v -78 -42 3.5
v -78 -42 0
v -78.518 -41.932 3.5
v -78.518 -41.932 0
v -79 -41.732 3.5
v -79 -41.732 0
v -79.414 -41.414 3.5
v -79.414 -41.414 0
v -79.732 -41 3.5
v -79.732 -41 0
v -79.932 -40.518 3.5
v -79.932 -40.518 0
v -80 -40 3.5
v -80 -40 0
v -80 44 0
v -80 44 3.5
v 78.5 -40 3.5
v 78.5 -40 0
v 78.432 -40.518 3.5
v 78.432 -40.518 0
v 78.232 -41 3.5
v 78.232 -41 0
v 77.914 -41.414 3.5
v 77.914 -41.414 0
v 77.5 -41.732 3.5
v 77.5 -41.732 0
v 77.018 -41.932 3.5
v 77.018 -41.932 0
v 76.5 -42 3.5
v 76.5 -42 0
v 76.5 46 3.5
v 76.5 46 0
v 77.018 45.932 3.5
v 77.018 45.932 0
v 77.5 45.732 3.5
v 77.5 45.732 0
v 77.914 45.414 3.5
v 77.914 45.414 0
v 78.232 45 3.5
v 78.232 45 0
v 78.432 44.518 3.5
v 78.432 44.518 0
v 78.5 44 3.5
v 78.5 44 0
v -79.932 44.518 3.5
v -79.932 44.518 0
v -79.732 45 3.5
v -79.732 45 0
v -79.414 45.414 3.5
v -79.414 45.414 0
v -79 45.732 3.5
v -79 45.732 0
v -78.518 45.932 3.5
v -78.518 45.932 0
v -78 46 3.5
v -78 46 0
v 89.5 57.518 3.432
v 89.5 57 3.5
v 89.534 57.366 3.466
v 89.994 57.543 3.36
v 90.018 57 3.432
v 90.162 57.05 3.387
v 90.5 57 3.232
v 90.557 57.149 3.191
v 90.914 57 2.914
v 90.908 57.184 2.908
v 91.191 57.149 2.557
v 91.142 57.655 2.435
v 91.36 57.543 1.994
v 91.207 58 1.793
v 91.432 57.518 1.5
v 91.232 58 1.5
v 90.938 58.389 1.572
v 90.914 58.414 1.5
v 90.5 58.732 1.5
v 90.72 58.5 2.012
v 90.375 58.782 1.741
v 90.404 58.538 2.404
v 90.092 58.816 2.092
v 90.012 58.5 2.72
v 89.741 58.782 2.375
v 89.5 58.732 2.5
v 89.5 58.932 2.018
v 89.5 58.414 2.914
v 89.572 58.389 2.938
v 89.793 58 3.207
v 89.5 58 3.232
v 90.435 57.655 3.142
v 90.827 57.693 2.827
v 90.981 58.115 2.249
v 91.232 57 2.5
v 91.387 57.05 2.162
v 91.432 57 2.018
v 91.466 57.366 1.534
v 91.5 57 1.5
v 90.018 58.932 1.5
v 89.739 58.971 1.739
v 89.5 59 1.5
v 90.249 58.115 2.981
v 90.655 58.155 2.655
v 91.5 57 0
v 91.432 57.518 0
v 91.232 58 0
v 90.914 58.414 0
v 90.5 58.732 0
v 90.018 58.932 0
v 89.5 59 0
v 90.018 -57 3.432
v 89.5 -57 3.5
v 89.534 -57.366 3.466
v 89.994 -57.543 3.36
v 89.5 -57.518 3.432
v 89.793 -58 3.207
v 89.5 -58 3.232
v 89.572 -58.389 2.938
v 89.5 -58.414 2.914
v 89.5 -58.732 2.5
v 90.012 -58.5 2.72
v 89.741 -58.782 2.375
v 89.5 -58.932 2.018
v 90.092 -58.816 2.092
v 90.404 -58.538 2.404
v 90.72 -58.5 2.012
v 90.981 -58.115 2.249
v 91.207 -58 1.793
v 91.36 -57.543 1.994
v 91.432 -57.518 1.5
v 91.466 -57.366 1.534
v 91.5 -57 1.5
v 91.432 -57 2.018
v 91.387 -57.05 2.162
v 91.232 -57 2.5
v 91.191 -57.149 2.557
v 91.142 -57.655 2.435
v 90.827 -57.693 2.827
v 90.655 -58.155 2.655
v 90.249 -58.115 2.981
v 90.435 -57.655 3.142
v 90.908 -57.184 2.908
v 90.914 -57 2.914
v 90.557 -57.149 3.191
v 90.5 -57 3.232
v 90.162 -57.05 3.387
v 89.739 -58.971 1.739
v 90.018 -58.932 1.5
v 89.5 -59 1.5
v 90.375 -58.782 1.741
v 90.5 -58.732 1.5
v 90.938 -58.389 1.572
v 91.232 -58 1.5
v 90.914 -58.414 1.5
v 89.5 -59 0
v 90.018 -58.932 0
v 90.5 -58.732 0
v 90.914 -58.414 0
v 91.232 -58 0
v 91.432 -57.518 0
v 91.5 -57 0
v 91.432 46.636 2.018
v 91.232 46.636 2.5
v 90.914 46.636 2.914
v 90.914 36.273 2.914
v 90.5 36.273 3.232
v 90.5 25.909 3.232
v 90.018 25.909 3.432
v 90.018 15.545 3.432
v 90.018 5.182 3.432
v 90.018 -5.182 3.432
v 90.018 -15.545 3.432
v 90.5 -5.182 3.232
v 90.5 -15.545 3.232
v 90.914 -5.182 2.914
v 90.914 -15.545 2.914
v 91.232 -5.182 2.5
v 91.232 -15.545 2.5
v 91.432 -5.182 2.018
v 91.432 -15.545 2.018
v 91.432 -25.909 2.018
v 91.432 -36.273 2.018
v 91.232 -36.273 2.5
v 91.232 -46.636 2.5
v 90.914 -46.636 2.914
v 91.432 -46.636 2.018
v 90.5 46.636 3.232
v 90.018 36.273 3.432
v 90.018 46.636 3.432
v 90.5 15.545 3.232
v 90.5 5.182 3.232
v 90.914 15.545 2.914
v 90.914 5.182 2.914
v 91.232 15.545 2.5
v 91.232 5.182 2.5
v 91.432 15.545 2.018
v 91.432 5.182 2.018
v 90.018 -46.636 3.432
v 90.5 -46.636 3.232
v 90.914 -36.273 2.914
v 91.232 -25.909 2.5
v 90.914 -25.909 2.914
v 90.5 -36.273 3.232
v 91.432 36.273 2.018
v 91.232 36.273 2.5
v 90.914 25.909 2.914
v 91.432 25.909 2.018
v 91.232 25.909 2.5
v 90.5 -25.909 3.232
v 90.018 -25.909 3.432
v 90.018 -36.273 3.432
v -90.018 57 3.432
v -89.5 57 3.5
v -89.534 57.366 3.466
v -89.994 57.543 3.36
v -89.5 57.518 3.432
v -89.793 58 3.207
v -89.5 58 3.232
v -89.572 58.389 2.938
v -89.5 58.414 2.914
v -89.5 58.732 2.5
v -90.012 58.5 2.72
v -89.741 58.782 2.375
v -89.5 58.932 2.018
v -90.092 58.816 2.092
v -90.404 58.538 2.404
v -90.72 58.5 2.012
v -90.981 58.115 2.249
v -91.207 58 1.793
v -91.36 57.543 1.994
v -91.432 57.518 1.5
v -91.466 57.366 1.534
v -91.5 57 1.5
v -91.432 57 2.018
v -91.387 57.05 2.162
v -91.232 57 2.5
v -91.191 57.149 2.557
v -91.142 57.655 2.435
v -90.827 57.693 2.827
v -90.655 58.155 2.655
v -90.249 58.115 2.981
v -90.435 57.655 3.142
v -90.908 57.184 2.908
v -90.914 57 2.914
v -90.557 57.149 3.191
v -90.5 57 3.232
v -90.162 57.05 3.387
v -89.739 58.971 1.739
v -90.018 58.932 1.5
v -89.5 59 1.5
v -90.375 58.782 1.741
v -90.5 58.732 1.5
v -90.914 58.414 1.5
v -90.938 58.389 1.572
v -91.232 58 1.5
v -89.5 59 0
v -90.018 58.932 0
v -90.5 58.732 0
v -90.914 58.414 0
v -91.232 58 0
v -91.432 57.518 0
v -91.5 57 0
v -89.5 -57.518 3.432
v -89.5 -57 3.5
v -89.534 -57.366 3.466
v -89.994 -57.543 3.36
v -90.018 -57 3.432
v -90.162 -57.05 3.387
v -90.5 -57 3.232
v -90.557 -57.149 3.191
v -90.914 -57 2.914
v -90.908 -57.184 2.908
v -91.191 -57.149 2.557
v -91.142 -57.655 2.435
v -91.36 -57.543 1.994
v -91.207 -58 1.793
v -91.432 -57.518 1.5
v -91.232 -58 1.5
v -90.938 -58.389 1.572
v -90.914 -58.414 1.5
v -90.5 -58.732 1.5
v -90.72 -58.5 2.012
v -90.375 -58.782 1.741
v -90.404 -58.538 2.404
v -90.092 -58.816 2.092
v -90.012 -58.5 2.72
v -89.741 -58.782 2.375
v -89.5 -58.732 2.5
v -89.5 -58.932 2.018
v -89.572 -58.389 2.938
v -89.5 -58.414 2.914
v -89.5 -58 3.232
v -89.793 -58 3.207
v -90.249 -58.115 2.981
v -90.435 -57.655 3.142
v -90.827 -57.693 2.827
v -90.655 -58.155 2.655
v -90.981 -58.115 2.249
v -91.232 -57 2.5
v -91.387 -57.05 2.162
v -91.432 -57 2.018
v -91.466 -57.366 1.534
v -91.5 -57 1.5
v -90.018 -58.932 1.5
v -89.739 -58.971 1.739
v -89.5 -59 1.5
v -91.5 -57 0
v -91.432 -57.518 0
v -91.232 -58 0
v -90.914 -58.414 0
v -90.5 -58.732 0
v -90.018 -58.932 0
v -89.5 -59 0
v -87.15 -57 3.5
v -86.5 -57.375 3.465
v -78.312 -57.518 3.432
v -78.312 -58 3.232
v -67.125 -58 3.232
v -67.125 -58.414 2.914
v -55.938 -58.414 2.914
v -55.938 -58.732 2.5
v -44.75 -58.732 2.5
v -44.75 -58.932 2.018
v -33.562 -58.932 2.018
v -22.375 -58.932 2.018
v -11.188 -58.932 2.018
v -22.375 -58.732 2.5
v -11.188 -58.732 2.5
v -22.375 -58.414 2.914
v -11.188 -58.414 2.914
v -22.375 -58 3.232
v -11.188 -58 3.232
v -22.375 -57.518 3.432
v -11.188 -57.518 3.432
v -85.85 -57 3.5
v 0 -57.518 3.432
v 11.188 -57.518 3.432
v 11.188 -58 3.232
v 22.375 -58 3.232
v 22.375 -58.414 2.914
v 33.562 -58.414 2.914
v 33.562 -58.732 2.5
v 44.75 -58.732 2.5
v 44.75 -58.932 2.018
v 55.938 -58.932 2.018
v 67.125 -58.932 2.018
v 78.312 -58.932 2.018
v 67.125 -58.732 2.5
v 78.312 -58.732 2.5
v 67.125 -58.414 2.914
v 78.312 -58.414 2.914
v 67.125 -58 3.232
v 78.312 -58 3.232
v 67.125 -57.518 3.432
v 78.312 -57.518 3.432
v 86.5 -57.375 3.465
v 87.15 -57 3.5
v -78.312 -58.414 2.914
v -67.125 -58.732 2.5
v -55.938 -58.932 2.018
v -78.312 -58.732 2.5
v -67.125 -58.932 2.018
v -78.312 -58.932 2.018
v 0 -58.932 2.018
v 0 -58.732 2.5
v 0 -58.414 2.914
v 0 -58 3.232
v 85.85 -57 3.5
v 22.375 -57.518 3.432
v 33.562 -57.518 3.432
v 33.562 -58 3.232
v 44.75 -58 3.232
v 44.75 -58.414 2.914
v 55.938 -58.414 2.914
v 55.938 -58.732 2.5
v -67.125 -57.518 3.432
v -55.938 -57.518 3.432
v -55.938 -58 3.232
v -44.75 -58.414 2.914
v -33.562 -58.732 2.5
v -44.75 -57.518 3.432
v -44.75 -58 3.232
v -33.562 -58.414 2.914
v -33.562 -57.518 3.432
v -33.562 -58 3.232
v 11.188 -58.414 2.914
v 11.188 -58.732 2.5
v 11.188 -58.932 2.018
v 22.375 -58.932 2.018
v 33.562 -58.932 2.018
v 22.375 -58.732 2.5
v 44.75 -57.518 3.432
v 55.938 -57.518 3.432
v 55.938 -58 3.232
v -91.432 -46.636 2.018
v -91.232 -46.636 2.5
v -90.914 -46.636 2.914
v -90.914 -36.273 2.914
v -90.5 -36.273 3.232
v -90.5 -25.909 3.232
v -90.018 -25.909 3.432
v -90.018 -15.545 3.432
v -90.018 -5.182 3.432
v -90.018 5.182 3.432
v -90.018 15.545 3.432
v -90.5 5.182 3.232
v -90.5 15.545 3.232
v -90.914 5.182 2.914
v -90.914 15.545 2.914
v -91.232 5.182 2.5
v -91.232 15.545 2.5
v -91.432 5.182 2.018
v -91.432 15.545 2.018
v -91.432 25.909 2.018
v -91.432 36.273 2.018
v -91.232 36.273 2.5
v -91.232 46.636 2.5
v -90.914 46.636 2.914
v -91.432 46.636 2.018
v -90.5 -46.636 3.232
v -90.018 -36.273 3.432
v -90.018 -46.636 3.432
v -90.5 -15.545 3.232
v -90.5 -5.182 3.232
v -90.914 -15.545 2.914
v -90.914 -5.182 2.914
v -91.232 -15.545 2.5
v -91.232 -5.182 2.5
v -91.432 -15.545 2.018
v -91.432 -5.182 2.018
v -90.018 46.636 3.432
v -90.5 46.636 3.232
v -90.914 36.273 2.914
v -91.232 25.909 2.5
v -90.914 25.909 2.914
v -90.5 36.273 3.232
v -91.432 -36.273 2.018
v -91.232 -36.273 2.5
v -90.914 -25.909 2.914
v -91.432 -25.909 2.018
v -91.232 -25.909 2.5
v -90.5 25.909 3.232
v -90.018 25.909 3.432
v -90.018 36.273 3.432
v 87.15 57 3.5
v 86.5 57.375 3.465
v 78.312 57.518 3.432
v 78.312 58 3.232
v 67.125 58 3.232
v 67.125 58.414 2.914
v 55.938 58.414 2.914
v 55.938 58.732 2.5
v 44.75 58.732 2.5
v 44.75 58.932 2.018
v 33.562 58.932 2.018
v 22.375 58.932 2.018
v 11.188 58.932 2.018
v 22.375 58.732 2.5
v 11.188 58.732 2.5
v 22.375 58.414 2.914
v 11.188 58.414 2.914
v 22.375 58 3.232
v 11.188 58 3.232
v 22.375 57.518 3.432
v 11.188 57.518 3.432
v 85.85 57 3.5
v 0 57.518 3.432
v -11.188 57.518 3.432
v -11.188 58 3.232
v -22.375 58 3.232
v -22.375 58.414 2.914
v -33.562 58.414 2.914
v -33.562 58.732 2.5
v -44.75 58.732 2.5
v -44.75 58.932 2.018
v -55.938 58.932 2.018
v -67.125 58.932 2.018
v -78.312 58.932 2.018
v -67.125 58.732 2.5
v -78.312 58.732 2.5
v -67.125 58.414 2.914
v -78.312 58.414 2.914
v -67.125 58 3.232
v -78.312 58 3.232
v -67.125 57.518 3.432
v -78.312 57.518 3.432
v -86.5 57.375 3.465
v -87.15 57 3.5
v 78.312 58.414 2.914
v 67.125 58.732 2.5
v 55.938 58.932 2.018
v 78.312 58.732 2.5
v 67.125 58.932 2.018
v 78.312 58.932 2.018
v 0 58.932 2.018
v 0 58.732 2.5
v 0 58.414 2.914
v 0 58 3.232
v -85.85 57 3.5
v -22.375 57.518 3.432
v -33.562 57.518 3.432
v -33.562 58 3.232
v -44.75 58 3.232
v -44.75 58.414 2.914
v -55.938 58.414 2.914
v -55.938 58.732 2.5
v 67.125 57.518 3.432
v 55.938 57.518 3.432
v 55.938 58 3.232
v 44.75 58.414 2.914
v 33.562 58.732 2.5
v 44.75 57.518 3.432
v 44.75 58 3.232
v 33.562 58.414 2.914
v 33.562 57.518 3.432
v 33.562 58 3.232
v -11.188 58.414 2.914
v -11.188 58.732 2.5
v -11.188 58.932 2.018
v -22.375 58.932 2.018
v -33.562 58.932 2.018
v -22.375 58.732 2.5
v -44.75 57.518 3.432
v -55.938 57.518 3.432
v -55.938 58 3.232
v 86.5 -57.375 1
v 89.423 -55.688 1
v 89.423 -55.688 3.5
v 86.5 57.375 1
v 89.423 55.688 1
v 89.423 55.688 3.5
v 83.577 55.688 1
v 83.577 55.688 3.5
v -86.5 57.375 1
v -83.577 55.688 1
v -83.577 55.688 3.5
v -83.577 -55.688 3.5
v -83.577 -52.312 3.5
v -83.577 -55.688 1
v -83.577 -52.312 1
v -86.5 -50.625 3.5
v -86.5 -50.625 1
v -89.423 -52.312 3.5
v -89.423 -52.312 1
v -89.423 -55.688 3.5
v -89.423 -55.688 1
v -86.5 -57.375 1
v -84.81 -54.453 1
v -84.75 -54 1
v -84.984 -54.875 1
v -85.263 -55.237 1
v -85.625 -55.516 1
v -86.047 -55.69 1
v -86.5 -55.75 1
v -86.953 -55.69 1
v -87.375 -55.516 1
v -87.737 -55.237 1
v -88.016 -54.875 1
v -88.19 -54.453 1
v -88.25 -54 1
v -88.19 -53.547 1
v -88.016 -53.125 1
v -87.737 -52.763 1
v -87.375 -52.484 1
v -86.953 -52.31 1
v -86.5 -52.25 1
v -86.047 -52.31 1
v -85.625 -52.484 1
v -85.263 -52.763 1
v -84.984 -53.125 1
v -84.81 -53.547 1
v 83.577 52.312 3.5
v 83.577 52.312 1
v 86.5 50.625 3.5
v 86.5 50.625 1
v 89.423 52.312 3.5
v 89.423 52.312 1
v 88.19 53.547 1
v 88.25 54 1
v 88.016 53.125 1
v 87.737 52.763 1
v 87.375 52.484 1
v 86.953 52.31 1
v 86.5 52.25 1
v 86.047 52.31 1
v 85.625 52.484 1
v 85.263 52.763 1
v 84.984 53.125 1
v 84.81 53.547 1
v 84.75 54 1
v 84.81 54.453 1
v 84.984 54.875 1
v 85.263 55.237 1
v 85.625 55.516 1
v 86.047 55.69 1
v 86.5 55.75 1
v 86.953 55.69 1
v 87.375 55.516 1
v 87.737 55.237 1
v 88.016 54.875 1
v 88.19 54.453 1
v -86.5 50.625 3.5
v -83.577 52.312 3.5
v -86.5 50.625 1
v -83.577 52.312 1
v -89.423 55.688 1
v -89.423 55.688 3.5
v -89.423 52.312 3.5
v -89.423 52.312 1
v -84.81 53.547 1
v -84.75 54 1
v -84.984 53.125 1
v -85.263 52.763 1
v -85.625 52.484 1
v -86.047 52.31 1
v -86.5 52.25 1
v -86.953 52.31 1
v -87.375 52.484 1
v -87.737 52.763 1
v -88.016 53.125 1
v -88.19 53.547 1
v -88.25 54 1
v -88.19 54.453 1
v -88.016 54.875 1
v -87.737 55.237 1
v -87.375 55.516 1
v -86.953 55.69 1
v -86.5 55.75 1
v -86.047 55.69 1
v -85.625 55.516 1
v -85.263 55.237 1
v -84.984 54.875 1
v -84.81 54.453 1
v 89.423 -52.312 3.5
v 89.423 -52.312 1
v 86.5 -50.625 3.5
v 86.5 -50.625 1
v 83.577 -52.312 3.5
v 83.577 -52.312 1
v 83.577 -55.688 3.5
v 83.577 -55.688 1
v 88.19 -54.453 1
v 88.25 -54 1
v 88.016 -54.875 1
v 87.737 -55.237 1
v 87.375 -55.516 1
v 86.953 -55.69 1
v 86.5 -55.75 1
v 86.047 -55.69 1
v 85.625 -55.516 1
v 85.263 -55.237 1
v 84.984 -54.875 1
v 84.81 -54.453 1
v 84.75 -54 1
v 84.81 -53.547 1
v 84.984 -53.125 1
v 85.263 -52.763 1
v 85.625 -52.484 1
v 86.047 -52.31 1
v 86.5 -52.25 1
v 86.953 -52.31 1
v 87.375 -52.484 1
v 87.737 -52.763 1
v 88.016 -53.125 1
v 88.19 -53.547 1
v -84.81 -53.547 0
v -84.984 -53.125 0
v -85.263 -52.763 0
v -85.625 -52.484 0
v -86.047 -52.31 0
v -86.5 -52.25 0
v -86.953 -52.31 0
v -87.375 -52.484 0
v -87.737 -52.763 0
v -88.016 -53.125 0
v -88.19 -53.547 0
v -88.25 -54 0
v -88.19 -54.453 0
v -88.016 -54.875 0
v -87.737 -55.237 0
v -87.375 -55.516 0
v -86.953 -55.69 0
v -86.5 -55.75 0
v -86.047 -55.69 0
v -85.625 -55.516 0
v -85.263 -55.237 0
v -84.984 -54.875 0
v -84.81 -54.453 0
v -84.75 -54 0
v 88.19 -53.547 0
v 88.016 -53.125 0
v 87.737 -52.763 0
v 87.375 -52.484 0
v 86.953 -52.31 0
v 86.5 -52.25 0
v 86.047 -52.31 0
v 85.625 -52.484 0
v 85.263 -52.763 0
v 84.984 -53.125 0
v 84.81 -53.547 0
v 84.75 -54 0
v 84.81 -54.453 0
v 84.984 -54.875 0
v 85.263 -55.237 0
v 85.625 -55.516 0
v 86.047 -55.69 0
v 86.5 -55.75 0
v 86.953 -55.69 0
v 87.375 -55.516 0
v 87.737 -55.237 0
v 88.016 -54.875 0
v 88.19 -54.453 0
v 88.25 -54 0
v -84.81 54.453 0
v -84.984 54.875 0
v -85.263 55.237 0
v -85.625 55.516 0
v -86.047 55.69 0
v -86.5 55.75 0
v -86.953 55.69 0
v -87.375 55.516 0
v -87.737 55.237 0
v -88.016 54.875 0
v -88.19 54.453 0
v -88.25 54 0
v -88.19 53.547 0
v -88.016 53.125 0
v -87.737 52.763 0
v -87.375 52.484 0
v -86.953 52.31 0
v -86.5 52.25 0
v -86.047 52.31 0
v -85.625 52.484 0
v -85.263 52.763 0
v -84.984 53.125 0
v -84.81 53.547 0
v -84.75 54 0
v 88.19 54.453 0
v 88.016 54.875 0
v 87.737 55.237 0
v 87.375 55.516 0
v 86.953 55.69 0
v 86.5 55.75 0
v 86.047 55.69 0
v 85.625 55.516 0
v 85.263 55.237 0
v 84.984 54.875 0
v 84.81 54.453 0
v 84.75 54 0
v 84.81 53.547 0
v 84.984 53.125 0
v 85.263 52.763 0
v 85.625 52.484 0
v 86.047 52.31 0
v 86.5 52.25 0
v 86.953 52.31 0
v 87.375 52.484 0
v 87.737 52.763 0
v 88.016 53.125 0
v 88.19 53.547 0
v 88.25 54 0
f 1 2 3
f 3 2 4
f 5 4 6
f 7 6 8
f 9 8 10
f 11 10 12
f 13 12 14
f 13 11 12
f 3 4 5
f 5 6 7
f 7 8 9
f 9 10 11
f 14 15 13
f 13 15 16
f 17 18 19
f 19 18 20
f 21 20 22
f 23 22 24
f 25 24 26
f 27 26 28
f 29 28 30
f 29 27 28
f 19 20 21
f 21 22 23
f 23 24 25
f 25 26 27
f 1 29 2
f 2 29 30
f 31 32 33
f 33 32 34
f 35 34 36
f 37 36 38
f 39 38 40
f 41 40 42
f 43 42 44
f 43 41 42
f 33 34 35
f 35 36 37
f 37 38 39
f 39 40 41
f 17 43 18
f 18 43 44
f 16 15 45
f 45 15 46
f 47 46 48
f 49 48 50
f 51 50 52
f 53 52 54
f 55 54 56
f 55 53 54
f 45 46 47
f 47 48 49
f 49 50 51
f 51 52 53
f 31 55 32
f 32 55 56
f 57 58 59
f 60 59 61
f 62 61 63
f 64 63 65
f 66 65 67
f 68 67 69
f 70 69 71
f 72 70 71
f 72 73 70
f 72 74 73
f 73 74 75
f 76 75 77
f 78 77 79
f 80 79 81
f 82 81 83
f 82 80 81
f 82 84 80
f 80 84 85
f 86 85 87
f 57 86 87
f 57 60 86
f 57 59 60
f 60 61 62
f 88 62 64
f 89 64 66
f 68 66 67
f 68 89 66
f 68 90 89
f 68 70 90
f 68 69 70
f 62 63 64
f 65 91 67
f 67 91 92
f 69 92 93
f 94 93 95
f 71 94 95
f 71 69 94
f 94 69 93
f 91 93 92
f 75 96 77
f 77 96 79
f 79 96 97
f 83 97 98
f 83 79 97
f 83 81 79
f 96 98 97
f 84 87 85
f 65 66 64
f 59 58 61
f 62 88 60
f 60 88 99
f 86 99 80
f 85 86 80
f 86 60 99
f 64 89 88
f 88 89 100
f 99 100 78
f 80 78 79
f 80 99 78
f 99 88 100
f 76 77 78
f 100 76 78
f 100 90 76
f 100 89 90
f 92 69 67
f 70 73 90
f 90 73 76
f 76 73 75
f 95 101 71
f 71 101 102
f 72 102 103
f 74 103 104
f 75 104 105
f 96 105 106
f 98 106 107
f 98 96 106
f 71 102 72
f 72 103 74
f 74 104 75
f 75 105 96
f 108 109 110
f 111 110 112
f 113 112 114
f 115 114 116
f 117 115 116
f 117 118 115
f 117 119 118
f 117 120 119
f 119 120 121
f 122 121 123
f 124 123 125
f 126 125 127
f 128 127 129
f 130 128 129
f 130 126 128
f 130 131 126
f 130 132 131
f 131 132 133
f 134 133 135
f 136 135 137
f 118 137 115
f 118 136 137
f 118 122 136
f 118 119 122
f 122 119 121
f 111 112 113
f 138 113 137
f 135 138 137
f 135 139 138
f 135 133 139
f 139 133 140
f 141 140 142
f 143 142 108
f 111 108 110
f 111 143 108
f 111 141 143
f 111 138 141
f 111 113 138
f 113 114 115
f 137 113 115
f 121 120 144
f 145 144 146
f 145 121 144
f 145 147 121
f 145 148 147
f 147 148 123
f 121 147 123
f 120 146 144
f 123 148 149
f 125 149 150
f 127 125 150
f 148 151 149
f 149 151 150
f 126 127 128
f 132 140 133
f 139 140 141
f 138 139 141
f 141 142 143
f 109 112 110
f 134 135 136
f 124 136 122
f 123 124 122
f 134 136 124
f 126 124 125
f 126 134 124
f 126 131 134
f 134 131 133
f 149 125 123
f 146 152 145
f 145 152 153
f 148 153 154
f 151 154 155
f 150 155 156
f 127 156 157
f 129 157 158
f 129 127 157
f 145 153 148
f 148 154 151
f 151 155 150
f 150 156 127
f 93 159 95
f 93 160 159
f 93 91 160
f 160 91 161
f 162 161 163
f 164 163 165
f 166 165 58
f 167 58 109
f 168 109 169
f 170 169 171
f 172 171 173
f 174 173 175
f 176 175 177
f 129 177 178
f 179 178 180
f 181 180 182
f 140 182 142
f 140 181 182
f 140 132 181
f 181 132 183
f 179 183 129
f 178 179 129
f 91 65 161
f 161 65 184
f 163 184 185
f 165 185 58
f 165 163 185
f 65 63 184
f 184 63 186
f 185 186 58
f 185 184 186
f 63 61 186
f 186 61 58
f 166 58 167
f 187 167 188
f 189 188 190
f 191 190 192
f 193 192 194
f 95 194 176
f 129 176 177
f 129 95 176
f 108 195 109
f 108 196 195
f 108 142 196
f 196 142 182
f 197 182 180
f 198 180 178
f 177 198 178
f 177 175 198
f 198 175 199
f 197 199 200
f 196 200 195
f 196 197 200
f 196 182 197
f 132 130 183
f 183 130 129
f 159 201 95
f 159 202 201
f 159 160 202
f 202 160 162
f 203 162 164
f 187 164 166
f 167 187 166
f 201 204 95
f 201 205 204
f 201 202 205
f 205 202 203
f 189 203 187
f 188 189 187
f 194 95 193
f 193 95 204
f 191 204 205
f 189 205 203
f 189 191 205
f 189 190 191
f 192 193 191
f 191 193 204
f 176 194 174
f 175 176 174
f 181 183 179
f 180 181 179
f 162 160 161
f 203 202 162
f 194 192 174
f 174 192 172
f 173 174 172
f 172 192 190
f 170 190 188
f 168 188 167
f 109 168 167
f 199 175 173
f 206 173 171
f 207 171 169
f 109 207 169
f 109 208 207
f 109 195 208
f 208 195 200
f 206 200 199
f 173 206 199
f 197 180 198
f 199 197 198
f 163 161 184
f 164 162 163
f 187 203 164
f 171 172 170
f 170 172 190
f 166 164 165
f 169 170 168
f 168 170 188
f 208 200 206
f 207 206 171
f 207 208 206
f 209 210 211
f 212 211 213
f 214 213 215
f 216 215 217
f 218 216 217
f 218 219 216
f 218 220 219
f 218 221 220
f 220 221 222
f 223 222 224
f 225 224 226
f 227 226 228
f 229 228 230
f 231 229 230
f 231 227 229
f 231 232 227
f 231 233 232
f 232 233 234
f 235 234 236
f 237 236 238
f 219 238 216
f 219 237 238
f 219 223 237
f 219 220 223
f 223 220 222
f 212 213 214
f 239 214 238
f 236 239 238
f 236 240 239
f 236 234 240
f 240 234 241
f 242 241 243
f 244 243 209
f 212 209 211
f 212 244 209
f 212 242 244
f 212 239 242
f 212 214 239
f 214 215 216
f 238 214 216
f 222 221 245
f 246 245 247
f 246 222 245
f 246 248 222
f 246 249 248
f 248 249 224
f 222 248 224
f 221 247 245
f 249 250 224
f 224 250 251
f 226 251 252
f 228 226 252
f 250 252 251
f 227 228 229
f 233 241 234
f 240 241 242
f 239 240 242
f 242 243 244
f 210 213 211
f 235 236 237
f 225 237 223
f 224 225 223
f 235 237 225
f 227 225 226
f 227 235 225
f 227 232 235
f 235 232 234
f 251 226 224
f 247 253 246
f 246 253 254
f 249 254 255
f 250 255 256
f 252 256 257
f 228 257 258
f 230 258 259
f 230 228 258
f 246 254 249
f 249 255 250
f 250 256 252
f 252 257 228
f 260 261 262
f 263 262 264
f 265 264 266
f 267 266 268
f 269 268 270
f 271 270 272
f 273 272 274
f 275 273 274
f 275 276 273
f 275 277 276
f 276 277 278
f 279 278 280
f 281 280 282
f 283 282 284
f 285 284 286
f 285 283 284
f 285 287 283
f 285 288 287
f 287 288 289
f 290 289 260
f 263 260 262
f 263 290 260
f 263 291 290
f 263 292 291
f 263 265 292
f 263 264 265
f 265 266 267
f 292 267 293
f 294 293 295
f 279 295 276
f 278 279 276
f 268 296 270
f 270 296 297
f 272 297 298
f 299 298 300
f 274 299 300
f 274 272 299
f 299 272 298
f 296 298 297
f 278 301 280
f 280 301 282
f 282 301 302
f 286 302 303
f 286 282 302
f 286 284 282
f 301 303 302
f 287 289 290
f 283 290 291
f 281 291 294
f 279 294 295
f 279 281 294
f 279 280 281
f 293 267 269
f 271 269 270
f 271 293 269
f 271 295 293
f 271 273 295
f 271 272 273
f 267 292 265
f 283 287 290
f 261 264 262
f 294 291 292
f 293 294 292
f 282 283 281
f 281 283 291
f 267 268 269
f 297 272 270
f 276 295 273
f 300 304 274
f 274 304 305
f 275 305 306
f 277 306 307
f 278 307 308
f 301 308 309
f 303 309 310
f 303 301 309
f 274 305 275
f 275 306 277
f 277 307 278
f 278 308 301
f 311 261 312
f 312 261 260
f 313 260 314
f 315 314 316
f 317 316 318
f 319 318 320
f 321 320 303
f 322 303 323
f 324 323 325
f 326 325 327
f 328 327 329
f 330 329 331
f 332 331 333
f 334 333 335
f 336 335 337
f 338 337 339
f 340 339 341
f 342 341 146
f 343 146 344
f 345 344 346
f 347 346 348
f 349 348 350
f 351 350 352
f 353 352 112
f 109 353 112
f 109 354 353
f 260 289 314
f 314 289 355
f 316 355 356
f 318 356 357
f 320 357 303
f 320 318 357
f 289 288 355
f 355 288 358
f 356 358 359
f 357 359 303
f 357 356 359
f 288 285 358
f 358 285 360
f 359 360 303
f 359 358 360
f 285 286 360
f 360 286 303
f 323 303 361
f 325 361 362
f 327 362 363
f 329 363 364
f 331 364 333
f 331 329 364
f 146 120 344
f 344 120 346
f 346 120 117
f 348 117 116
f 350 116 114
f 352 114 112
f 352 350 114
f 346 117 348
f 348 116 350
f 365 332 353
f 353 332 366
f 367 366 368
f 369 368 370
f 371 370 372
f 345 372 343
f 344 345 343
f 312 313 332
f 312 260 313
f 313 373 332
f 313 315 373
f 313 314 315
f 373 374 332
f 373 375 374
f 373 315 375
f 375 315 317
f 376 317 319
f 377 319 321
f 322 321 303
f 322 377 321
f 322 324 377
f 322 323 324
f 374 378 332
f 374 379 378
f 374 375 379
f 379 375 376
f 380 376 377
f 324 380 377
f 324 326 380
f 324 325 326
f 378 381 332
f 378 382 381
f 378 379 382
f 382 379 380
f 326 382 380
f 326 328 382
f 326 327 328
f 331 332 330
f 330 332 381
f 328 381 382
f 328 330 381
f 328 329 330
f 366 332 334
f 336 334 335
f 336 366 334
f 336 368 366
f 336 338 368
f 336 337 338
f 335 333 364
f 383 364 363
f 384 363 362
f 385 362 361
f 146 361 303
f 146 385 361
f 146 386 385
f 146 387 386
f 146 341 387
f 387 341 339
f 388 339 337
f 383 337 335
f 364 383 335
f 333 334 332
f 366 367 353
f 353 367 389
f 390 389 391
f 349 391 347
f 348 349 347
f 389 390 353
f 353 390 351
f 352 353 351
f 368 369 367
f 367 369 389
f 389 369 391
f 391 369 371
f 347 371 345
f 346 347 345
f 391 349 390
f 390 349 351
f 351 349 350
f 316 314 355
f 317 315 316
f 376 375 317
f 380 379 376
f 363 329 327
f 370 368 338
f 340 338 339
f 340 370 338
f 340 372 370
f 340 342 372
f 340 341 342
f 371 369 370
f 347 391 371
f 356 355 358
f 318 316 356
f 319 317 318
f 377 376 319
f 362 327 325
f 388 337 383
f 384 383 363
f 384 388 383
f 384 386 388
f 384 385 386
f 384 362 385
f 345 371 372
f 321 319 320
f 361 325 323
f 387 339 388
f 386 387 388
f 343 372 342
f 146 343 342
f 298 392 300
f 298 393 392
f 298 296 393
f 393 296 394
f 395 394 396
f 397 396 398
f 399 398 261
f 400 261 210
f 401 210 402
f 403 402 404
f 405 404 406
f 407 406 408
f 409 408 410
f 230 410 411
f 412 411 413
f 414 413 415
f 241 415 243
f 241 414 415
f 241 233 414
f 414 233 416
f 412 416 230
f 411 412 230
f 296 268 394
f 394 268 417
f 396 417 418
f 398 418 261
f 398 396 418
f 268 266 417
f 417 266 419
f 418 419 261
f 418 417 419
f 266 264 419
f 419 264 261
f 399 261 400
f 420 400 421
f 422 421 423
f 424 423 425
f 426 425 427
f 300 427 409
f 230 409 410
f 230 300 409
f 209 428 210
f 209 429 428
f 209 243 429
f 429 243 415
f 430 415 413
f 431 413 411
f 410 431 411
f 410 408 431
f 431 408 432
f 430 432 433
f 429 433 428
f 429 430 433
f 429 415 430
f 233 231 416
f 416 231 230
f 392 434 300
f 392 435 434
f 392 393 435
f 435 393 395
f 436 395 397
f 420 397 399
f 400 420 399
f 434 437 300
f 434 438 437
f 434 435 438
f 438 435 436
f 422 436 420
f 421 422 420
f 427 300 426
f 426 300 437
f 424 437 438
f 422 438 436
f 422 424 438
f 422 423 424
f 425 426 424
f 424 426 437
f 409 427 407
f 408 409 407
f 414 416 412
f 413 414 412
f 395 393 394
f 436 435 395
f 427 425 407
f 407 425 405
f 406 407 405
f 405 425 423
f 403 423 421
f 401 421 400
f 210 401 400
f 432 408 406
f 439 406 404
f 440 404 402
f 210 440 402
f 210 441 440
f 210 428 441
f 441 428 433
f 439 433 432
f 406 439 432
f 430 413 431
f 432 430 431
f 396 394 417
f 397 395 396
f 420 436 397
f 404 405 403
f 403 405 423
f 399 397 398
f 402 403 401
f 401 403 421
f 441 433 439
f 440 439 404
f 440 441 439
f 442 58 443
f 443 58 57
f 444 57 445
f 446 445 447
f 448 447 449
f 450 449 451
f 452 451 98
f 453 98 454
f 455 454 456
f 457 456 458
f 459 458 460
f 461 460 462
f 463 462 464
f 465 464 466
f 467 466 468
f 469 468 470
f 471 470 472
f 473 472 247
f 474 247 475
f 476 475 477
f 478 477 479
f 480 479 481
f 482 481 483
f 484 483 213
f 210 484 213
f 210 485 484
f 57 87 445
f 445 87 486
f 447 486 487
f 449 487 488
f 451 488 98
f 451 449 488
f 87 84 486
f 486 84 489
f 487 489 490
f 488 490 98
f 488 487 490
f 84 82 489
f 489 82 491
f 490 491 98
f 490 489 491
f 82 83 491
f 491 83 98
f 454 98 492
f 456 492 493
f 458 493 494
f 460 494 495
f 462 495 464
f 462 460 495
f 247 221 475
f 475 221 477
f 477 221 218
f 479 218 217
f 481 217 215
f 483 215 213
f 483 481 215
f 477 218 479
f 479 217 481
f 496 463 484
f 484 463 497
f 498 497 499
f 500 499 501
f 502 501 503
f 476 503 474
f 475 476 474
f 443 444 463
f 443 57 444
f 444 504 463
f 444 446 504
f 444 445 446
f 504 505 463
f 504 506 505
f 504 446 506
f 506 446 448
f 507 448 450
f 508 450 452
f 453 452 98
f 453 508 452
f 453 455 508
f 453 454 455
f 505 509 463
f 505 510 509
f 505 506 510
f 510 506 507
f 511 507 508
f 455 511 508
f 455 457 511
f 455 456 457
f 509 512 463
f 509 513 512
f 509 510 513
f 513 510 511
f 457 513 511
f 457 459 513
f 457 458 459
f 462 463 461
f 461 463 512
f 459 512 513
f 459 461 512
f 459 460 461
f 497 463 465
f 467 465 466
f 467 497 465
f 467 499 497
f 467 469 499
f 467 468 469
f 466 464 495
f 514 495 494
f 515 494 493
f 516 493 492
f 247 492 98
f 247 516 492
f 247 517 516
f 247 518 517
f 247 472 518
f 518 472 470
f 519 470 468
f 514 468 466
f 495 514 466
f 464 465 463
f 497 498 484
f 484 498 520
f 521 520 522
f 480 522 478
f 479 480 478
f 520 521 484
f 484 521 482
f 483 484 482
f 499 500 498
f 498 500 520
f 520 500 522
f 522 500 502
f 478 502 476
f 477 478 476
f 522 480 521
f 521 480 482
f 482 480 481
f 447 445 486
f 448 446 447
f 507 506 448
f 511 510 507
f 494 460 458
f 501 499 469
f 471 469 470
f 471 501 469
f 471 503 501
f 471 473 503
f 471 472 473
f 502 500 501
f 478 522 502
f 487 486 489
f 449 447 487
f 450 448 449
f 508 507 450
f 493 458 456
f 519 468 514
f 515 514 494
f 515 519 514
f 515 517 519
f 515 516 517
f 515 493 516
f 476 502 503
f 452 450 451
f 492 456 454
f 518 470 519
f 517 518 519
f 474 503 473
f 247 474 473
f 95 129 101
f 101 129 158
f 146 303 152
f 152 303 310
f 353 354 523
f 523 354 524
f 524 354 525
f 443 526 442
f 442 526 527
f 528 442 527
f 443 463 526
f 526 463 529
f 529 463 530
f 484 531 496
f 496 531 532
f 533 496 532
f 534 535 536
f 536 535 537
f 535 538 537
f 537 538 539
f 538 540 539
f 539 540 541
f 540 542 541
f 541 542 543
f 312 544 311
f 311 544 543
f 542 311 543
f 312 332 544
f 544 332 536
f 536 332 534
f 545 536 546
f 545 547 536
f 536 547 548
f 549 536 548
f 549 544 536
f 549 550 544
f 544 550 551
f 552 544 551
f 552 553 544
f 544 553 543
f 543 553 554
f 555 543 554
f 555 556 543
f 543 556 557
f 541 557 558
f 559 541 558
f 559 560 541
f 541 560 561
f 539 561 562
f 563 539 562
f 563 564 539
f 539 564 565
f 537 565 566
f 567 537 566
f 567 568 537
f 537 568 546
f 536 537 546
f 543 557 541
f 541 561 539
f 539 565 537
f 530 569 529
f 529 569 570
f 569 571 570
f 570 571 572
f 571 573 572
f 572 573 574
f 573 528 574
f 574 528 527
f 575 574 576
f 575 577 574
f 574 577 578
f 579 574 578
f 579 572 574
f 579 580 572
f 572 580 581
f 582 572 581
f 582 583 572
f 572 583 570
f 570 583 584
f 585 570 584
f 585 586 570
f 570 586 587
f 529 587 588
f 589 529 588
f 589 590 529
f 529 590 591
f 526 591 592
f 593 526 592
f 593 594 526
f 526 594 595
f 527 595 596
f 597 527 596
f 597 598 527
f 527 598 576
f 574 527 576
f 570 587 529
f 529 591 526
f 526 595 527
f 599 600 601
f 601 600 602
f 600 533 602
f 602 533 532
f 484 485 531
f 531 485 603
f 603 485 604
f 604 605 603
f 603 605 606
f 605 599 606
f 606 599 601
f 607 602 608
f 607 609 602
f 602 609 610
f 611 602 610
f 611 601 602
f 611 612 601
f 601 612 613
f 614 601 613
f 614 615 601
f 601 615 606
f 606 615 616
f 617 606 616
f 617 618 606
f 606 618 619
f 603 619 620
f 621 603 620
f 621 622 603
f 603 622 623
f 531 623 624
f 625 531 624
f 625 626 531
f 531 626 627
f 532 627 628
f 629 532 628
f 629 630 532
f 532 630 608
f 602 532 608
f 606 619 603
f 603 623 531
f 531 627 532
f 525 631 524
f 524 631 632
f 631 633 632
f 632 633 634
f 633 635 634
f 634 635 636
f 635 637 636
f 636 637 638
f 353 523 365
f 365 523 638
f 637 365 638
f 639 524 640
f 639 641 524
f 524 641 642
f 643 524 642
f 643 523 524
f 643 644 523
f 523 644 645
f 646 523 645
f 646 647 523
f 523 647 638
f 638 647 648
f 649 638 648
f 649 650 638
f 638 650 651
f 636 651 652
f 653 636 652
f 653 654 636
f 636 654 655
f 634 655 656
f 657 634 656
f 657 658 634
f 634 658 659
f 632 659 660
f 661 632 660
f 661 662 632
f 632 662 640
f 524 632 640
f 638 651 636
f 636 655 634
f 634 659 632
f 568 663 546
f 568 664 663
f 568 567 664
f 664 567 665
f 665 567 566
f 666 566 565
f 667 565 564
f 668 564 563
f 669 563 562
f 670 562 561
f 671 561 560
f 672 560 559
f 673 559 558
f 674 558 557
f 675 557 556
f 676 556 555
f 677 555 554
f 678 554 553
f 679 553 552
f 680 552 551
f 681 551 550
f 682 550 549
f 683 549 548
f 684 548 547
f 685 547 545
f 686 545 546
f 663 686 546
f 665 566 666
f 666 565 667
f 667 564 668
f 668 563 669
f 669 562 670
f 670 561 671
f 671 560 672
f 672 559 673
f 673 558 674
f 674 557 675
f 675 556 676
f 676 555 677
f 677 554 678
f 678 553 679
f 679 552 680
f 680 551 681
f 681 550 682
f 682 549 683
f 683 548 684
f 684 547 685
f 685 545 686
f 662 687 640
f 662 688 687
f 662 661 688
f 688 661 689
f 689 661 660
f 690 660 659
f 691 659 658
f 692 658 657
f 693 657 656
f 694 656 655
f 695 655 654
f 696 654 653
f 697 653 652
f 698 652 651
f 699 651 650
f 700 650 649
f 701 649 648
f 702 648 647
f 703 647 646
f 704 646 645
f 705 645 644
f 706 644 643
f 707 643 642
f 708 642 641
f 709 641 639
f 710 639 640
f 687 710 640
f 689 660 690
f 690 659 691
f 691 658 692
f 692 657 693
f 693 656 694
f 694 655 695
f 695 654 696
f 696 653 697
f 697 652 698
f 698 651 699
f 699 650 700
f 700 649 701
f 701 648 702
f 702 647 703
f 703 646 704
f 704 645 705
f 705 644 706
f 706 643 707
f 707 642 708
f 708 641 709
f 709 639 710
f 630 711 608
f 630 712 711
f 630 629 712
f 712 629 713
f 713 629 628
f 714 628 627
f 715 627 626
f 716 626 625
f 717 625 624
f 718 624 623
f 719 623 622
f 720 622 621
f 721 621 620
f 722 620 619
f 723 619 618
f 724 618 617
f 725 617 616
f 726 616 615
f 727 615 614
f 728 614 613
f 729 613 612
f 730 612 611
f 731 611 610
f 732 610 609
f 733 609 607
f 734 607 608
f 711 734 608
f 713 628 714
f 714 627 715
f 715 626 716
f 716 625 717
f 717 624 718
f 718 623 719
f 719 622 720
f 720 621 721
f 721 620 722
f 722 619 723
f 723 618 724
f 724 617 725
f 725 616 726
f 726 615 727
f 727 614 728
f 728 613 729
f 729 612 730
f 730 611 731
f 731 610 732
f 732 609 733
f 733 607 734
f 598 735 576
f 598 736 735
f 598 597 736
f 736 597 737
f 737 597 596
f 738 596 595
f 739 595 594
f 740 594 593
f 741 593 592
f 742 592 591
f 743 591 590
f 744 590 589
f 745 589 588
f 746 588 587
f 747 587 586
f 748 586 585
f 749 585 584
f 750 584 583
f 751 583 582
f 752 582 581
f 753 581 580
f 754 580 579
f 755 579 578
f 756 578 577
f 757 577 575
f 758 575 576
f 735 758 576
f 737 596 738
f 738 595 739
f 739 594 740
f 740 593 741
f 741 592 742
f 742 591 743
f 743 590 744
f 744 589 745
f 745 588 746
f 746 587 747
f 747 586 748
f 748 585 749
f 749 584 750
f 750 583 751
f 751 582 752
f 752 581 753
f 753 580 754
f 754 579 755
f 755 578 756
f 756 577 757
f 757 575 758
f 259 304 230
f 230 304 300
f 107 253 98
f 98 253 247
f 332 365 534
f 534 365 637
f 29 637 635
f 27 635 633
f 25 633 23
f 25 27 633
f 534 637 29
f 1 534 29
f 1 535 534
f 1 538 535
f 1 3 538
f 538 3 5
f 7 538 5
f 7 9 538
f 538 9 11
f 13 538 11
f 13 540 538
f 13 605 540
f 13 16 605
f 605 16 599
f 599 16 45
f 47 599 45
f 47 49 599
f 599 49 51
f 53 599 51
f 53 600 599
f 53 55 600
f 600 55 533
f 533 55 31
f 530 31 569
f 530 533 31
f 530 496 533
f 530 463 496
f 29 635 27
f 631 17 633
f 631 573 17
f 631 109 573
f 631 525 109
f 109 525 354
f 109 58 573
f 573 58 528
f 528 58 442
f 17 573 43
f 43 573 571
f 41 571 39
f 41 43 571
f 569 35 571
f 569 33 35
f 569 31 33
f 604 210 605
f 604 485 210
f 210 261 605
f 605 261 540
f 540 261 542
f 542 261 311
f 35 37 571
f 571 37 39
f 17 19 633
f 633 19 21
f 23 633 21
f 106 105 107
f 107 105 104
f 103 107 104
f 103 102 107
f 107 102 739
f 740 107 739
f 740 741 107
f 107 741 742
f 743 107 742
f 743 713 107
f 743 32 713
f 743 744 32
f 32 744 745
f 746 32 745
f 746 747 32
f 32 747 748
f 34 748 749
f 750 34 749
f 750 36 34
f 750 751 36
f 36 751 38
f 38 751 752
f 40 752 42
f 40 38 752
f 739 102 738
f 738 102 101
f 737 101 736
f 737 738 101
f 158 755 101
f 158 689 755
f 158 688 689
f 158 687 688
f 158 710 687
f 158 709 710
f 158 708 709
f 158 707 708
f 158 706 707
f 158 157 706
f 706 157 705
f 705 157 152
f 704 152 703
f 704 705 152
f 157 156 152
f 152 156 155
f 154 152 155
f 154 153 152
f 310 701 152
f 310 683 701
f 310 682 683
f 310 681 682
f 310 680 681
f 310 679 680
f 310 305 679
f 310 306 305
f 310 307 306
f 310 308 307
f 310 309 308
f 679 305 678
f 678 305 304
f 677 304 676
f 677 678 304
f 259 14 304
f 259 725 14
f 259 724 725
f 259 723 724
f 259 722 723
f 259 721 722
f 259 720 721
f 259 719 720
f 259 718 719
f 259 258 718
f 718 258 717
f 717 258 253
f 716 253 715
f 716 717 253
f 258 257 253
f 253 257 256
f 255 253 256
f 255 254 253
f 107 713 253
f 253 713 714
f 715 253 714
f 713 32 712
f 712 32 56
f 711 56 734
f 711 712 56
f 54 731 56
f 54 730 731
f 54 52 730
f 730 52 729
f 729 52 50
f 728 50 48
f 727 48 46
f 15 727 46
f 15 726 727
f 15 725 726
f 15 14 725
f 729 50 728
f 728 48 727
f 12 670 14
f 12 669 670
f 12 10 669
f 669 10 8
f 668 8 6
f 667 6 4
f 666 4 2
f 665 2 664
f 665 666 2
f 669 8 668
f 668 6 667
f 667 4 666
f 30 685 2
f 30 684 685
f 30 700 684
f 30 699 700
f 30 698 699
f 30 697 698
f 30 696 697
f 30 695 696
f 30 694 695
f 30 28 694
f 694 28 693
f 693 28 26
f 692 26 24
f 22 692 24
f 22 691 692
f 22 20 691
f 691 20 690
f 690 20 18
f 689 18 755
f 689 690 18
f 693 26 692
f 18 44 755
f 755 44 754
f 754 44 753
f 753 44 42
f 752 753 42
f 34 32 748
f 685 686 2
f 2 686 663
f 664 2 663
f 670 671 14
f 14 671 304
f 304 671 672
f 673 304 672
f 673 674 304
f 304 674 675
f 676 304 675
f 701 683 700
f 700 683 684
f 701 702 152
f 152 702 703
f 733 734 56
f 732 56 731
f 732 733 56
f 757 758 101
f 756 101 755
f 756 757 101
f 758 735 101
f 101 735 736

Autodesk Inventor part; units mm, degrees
ref_plane "YZ Plane" through (0, 0, 0) normal (1, 0, 0) x (0, 1, 0)
ref_plane "XZ Plane" through (0, 0, 0) normal (0, 1, 0) x (-1, 0, 0)
ref_plane "XY Plane" through (0, 0, 0) normal (0, 0, 1) x (1, 0, 0)
sketch "Sketch1" plane through (0, 0, 0) normal (0, 0, 1) x (1, 0, 0)
  circle A0 centre (86.5, 54) radius 1.75
  circle A1 centre (-86.5, 54) radius 1.75
  circle A2 centre (86.5, -54) radius 1.75
  circle A3 centre (-86.5, -54) radius 1.75
  line L0 (91.5, 59) -> (-91.5, 59)
  line L1 (-91.5, 59) -> (-91.5, -59)
  line L2 (-91.5, -59) -> (91.5, -59)
  line L3 (91.5, -59) -> (91.5, 59)
  line L4 (78.5, -42) -> (-80, -42)
  circle A4 centre (86.5, 54) radius 1.75
  circle A5 centre (-86.5, 54) radius 1.75
  circle A6 centre (86.5, -54) radius 1.75
  circle A7 centre (-86.5, -54) radius 1.75
  line L5 (91.5, 59) -> (-91.5, 59)
  line L6 (-91.5, 59) -> (-91.5, -59)
  line L7 (-91.5, -59) -> (91.5, -59)
  line L8 (91.5, -59) -> (91.5, 59)
  line L9 (78.5, 46) -> (78.5, -42)
  line L10 (-80, -42) -> (-80, 46)
  line L11 (-128.1, 0) -> (128.1, 0) projected
  line L12 (0, -82.95) -> (0, 84.7) projected
  line L13 (-80, 46) -> (78.5, 46)
  line L14 (84.25, 60.75) -> (84.25, 59)
  line L15 (78.5, 46) -> (78.5, -42)
  line L16 (-80, -42) -> (-80, 46)
  line L17 (-84.25, 59) -> (-84.25, 60.75)
  point P0 (0, 0)
  point P1 (0, 0)
  point P2 (0, 0)
  dimension "d0" = 183
  dimension "d1" = 118
  dimension "d2" = 3.5
  dimension "d3" = 17
  dimension "d4" = 13
  dimension "d5" = 13
  dimension "d6" = 11.5
extrude "Extrusion1" add sketch "Sketch1" along normal blind 3.5 contours L3 L11 L9 L13 L12 L0 | L3 L2 L12 L4 L9 L11 | L12 L13 L10 L11 L1 L0 | L2 L1 L11 L10 L4 L12
sketch "Sketch2" plane through (0, 0, 3.5) normal (0, 0, 1) x (1, 0, 0)
  line L0 (-80, 46) -> (78.5, 46) projected
  line L1 (78.5, 46) -> (78.5, -42) projected
  line L2 (78.5, -42) -> (-80, -42) projected
  line L3 (-80, -42) -> (-80, 46) projected
  circle A0 centre (-86.5, -54) radius 1.75 projected
  circle A1 centre (86.5, -54) radius 1.75 projected
  circle A2 centre (-86.5, 54) radius 1.75 projected
  circle A3 centre (86.5, 54) radius 1.75 projected
  line L4 (91.5, 59) -> (-91.5, 59) projected
  line L5 (-91.5, 59) -> (-91.5, -59) projected
  line L6 (-91.5, -59) -> (91.5, -59) projected
  line L7 (91.5, -59) -> (91.5, 59) projected
  circle A4 centre (86.5, 54) radius 1.75
  circle A5 centre (86.5, 54) radius 1.75
  line L8 (83.5772, 55.6875) -> (86.5, 57.375)
  line L9 (86.5, 57.375) -> (89.4228, 55.6875)
  line L10 (89.4228, 55.6875) -> (89.4228, 52.3125)
  line L11 (89.4228, 52.3125) -> (86.5, 50.625)
  line L12 (86.5, 50.625) -> (83.5772, 52.3125)
  line L13 (83.5772, 52.3125) -> (83.5772, 55.6875)
  circle A6 centre (86.5, 54) radius 3.375 construction
  line L14 (-89.4228, 52.3125) -> (-89.4228, 55.6875)
  line L15 (-89.4228, 55.6875) -> (-86.5, 57.375)
  line L16 (-86.5, 57.375) -> (-83.5772, 55.6875)
  line L17 (-83.5772, 55.6875) -> (-83.5772, 52.3125)
  line L18 (-83.5772, 52.3125) -> (-86.5, 50.625)
  line L19 (-86.5, 50.625) -> (-89.4228, 52.3125)
  line L20 (-86.5, -57.375) -> (-89.4228, -55.6875)
  line L21 (-89.4228, -55.6875) -> (-89.4228, -52.3125)
  line L22 (-89.4228, -52.3125) -> (-86.5, -50.625)
  line L23 (-86.5, -50.625) -> (-83.5772, -52.3125)
  line L24 (-83.5772, -52.3125) -> (-83.5772, -55.6875)
  line L25 (-83.5772, -55.6875) -> (-86.5, -57.375)
  line L26 (83.5772, -55.6875) -> (83.5772, -52.3125)
  line L27 (83.5772, -52.3125) -> (86.5, -50.625)
  line L28 (86.5, -50.625) -> (89.4228, -52.3125)
  line L29 (89.4228, -52.3125) -> (89.4228, -55.6875)
  line L30 (89.4228, -55.6875) -> (86.5, -57.375)
  line L31 (86.5, -57.375) -> (83.5772, -55.6875)
  point P0 (0, 0)
  point P1 (89.4228, 54)
  point P2 (-83.5772, 54)
  point P3 (-83.5772, -54)
  point P4 (89.4228, -54)
  dimension "d9" = 6.75
  dimension "d12" = 173
  dimension "d19" = 108
extrude "Extrusion3" cut sketch "Sketch2" against normal blind 2.5 contours L8 L9 L10 L11 L12 L13 | L14 L15 L16 L17 L18 L19 | L20 L21 L22 L23 L24 L25 | L26 L27 L28 L29 L30 L31
fillet "Fillet1" radius 2 12 edges at (-91.5, -59, 1.75) (91.5, -59, 1.75) (-91.5, 59, 1.75) (91.5, 59, 1.75) (91.5, 0, 3.5) (0, 59, 3.5) (-91.5, 0, 3.5) (0, -59, 3.5) (-80, 46, 1.75) (78.5, 46, 1.75) (78.5, -42, 1.75) (-80, -42, 1.75)
properties part number "tapa"
